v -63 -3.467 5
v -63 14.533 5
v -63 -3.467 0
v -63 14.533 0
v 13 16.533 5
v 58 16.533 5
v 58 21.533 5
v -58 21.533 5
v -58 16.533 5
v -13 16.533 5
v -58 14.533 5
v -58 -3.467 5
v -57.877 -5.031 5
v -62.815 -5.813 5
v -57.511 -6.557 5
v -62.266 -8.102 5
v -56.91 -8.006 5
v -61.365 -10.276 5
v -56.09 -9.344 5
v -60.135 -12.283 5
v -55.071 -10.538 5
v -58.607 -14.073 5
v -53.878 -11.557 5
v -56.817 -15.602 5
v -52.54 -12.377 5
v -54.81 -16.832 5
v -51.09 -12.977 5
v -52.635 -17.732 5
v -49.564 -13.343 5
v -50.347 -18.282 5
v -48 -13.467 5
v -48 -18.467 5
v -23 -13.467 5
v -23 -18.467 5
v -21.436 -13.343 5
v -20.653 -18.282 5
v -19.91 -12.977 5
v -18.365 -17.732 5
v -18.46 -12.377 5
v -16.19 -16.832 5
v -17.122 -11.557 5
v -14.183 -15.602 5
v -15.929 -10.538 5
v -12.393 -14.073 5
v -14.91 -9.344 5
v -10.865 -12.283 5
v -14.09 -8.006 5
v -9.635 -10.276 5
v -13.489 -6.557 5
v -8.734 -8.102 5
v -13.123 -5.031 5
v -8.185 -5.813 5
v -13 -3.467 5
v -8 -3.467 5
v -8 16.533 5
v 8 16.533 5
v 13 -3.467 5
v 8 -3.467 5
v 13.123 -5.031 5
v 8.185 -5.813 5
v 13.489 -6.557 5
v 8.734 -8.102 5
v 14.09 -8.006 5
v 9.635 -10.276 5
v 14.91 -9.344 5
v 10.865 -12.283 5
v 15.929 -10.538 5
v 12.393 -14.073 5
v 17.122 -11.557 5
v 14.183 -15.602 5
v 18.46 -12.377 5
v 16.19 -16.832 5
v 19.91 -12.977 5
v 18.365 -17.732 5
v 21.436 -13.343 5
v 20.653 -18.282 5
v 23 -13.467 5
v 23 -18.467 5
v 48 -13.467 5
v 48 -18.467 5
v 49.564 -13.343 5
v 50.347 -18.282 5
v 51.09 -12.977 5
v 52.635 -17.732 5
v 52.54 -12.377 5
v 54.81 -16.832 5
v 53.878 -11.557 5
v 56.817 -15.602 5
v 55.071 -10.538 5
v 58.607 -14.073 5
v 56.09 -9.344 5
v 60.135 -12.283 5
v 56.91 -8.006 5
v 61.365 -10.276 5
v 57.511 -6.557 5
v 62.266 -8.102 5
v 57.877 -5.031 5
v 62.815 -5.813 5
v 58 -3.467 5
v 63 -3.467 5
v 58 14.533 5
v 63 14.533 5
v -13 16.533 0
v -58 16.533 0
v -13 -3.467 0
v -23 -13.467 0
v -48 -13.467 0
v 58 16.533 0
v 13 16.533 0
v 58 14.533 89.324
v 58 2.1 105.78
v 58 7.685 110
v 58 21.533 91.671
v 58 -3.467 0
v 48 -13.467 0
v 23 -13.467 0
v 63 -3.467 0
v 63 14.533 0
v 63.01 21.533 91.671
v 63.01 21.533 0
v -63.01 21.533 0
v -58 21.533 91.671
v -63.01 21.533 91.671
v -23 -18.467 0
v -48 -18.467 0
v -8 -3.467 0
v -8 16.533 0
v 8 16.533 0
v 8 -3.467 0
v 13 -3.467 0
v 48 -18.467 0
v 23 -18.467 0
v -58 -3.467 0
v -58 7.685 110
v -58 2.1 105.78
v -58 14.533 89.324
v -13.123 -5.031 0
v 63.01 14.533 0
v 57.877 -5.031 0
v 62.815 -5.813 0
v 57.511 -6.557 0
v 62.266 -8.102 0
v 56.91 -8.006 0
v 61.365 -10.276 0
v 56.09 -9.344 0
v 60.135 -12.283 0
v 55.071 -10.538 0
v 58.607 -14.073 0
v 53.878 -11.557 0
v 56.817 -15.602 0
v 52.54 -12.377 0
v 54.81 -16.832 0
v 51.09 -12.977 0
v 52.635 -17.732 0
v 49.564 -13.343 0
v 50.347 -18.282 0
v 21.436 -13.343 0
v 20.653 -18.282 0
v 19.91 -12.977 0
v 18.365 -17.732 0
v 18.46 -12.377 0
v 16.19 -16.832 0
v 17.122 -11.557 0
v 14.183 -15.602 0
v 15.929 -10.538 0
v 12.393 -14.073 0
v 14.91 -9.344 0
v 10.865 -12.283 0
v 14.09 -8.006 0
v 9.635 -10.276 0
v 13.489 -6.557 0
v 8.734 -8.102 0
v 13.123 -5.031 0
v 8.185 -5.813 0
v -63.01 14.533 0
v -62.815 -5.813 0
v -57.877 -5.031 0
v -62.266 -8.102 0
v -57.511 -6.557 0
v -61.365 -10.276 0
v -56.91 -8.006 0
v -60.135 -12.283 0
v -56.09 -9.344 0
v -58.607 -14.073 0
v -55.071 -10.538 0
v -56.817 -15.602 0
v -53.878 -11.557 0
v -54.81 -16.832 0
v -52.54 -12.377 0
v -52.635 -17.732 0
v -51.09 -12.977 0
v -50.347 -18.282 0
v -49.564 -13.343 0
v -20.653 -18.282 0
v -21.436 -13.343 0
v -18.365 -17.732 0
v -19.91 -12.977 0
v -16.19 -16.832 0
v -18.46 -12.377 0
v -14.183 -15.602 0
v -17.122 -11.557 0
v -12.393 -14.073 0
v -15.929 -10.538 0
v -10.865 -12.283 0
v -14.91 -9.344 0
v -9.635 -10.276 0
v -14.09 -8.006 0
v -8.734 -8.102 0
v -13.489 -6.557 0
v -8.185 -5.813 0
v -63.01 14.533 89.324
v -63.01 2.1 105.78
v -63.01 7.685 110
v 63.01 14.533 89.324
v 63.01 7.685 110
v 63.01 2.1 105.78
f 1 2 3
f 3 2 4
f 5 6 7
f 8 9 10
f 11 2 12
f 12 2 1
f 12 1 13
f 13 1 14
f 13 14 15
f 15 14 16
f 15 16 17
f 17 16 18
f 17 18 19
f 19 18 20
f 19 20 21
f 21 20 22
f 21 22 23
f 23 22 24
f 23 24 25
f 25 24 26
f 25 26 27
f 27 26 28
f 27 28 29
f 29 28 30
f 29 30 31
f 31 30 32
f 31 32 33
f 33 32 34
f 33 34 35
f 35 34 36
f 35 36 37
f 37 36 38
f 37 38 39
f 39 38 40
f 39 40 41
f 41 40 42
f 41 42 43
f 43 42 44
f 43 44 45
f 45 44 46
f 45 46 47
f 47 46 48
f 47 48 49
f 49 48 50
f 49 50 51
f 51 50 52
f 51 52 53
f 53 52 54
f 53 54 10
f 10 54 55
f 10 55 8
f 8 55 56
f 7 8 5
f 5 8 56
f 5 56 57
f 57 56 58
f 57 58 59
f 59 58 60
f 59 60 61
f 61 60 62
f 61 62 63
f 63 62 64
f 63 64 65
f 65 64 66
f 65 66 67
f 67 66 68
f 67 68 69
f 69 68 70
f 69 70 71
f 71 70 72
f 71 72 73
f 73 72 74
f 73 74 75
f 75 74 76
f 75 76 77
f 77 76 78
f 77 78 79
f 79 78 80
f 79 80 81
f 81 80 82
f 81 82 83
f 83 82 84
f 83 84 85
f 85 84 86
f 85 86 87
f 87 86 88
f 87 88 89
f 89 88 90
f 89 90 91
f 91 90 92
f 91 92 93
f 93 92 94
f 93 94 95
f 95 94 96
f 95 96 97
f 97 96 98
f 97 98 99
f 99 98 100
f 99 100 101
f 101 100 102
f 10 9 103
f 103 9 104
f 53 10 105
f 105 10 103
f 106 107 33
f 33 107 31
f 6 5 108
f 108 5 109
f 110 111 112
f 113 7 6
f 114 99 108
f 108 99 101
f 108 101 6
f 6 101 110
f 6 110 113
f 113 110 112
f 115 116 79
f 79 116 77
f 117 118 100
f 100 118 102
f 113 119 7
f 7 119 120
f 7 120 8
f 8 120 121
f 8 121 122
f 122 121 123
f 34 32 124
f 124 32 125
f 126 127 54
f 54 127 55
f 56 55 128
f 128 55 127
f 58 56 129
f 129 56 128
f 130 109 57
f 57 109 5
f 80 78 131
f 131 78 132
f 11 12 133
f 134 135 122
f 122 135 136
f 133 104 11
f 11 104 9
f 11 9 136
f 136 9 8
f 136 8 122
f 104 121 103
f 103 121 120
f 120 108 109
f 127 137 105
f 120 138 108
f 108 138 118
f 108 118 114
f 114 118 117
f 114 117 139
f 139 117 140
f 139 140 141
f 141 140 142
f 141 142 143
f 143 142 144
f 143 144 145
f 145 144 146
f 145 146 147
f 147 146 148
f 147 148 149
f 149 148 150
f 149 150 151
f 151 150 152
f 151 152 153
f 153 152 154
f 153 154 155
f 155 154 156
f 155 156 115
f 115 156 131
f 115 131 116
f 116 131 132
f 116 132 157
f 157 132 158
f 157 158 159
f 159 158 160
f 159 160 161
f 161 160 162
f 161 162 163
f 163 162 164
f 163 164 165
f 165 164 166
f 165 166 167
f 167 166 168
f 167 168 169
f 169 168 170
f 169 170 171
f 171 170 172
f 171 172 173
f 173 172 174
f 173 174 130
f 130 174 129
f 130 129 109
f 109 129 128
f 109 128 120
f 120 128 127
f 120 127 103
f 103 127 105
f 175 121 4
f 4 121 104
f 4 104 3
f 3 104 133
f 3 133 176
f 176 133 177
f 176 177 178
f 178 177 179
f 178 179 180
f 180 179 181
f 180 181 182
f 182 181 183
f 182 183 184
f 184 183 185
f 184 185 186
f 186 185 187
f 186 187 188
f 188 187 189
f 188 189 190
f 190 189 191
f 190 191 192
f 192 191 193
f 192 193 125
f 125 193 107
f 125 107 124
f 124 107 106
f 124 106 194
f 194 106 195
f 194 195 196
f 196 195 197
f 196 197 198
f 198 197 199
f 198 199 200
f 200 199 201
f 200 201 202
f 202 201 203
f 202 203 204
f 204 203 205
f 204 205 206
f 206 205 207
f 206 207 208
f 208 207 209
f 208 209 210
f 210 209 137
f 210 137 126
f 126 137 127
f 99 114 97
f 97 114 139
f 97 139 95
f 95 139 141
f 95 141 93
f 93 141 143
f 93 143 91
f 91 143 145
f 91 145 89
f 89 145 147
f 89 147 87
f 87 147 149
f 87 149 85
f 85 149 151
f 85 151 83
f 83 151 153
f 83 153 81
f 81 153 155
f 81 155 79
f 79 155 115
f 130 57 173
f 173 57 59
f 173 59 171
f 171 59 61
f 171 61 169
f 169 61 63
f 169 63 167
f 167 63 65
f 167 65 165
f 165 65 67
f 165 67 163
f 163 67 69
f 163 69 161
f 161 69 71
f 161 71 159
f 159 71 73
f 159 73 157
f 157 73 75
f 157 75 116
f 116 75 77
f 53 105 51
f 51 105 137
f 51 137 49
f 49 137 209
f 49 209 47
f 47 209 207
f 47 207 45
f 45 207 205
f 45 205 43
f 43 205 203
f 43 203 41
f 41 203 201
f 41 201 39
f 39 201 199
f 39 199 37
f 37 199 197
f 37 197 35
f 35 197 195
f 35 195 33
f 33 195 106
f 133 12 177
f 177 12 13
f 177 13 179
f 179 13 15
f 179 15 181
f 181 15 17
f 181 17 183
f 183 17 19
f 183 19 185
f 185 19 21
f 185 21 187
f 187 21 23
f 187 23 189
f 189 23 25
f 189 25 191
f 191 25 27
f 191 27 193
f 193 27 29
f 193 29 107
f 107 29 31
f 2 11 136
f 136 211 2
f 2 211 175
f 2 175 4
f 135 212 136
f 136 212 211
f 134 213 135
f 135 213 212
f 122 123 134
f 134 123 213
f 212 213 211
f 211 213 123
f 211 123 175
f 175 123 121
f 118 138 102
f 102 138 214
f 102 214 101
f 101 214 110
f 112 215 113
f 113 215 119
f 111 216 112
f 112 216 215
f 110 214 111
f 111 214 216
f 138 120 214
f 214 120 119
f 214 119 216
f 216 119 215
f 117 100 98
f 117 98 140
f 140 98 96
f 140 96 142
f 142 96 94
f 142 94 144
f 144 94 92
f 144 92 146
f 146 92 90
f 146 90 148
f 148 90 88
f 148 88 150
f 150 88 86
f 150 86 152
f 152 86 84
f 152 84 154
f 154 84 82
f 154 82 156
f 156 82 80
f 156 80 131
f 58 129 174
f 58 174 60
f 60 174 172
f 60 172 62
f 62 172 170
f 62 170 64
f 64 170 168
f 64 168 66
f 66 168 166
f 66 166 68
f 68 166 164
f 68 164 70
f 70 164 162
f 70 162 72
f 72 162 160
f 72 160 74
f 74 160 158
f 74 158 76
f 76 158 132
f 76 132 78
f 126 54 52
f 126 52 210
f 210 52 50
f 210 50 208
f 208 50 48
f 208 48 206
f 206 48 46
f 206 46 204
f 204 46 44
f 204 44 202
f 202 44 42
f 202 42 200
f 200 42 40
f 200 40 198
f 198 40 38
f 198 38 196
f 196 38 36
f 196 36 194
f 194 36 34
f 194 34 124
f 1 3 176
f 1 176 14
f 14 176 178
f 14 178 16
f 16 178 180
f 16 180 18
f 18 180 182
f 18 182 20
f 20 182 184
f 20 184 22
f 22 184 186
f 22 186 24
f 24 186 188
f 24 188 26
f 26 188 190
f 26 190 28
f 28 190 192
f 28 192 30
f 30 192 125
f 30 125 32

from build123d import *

# Parameters (mm, degrees)
SKETCH_1_W      = 55
SKETCH_1_H      = 40
SKETCH_1_W_2    = 45
SKETCH_1_H_2    = 30
SKETCH_1_W_3    = 16
SKETCH_1_H_3    = 5
EXTRUDE_1_DEPTH = 5
FILLET_1_R      = 10
FILLET_2_R      = 15
EXTRUDE_START   = -5
SKETCH_2_W      = 5
SKETCH_2_H      = 7
EXTRUDE_2_DEPTH = 5.01
FILLET_3_R      = 15


with BuildPart() as part:
    # ｽｹｯﾁ1 → ﾎﾞｽ - 押し出し1 (new body)
    # profile 1 of 3: a face of its own
    with BuildSketch(Plane.XY):
        with Locations((35.5, 1.53340789)):
            Rectangle(SKETCH_1_W, SKETCH_1_H)
        with Locations((35.5, 1.53340789)):
            Rectangle(SKETCH_1_W_2, SKETCH_1_H_2, mode=Mode.SUBTRACT)
    # profile 2 of 3: a face of its own
    with BuildSketch(Plane.XY):
        with Locations((0, 19.03340789)):
            Rectangle(SKETCH_1_W_3, SKETCH_1_H_3)
    # profile 3 of 3: a face of its own
    with BuildSketch(Plane.XY):
        with Locations((-35.5, 1.53340789)):
            Rectangle(SKETCH_1_W, SKETCH_1_H)
        with Locations((-35.5, 1.53340789)):
            Rectangle(SKETCH_1_W_2, SKETCH_1_H_2, mode=Mode.SUBTRACT)
    extrude_1 = extrude(amount=EXTRUDE_1_DEPTH)

    # ﾌｨﾚｯﾄ1
    fillet_1_edges = [part.edges().sort_by_distance(p)[0] for p in [
        (-58, -13.46659211, 2.5),
        (-13, -13.46659211, 2.5),
        (13, -13.46659211, 2.5),
        (58, -13.46659211, 2.5),
    ]]
    fillet(fillet_1_edges, radius=FILLET_1_R)

    # ﾌｨﾚｯﾄ2
    fillet_2_edges = [part.edges().sort_by_distance(p)[0] for p in [
        (63, -18.46659211, 2.5),
        (8, -18.46659211, 2.5),
        (-8, -18.46659211, 2.5),
        (-63, -18.46659211, 2.5),
    ]]
    fillet(fillet_2_edges, radius=FILLET_2_R)

    # ｽｹｯﾁ2 → ﾎﾞｽ - 押し出し2 (add)
    with BuildSketch(Plane.ZY.offset(63).offset(EXTRUDE_START)):
        with Locations((2.5, 18.03340789)):
            Rectangle(SKETCH_2_W, SKETCH_2_H)
        Polygon((87.451237669, 15.948400854), (91.671154304, 21.53340789), (5, 21.53340789), (5, 14.53340789), (89.323963209, 14.53340789), align=None)
        Polygon((91.671154304, 14.53340789), (91.671154304, 21.53340789), (87.451237669, 15.948400854), (89.323963209, 14.53340789), align=None)
        Polygon((110, 7.684508442), (91.671154304, 21.53340789), (91.671154304, 14.53340789), (89.323963209, 14.53340789), (105.780083365, 2.099501406), align=None)
    extrude_2 = extrude(amount=EXTRUDE_2_DEPTH)

    # ﾐﾗｰ1: ﾎﾞｽ - 押し出し1, ﾎﾞｽ - 押し出し2 across plane
    add(extrude_1.mirror(Plane(origin=(0, 0, 0), x_dir=(0, 0, 1), z_dir=(1, 0, 0))))
    add(extrude_2.mirror(Plane(origin=(0, 0, 0), x_dir=(0, 0, 1), z_dir=(1, 0, 0))))

    # ﾌｨﾚｯﾄ3
    fillet_3_edges = [part.edges().sort_by_distance(p)[0] for p in [
        (63, -18.46659211, 2.5),
        (-8, -18.46659211, 2.5),
        (-63, -18.46659211, 2.5),
        (8, -18.46659211, 2.5),
    ]]
    fillet(fillet_3_edges, radius=FILLET_3_R)


solid = part.part
